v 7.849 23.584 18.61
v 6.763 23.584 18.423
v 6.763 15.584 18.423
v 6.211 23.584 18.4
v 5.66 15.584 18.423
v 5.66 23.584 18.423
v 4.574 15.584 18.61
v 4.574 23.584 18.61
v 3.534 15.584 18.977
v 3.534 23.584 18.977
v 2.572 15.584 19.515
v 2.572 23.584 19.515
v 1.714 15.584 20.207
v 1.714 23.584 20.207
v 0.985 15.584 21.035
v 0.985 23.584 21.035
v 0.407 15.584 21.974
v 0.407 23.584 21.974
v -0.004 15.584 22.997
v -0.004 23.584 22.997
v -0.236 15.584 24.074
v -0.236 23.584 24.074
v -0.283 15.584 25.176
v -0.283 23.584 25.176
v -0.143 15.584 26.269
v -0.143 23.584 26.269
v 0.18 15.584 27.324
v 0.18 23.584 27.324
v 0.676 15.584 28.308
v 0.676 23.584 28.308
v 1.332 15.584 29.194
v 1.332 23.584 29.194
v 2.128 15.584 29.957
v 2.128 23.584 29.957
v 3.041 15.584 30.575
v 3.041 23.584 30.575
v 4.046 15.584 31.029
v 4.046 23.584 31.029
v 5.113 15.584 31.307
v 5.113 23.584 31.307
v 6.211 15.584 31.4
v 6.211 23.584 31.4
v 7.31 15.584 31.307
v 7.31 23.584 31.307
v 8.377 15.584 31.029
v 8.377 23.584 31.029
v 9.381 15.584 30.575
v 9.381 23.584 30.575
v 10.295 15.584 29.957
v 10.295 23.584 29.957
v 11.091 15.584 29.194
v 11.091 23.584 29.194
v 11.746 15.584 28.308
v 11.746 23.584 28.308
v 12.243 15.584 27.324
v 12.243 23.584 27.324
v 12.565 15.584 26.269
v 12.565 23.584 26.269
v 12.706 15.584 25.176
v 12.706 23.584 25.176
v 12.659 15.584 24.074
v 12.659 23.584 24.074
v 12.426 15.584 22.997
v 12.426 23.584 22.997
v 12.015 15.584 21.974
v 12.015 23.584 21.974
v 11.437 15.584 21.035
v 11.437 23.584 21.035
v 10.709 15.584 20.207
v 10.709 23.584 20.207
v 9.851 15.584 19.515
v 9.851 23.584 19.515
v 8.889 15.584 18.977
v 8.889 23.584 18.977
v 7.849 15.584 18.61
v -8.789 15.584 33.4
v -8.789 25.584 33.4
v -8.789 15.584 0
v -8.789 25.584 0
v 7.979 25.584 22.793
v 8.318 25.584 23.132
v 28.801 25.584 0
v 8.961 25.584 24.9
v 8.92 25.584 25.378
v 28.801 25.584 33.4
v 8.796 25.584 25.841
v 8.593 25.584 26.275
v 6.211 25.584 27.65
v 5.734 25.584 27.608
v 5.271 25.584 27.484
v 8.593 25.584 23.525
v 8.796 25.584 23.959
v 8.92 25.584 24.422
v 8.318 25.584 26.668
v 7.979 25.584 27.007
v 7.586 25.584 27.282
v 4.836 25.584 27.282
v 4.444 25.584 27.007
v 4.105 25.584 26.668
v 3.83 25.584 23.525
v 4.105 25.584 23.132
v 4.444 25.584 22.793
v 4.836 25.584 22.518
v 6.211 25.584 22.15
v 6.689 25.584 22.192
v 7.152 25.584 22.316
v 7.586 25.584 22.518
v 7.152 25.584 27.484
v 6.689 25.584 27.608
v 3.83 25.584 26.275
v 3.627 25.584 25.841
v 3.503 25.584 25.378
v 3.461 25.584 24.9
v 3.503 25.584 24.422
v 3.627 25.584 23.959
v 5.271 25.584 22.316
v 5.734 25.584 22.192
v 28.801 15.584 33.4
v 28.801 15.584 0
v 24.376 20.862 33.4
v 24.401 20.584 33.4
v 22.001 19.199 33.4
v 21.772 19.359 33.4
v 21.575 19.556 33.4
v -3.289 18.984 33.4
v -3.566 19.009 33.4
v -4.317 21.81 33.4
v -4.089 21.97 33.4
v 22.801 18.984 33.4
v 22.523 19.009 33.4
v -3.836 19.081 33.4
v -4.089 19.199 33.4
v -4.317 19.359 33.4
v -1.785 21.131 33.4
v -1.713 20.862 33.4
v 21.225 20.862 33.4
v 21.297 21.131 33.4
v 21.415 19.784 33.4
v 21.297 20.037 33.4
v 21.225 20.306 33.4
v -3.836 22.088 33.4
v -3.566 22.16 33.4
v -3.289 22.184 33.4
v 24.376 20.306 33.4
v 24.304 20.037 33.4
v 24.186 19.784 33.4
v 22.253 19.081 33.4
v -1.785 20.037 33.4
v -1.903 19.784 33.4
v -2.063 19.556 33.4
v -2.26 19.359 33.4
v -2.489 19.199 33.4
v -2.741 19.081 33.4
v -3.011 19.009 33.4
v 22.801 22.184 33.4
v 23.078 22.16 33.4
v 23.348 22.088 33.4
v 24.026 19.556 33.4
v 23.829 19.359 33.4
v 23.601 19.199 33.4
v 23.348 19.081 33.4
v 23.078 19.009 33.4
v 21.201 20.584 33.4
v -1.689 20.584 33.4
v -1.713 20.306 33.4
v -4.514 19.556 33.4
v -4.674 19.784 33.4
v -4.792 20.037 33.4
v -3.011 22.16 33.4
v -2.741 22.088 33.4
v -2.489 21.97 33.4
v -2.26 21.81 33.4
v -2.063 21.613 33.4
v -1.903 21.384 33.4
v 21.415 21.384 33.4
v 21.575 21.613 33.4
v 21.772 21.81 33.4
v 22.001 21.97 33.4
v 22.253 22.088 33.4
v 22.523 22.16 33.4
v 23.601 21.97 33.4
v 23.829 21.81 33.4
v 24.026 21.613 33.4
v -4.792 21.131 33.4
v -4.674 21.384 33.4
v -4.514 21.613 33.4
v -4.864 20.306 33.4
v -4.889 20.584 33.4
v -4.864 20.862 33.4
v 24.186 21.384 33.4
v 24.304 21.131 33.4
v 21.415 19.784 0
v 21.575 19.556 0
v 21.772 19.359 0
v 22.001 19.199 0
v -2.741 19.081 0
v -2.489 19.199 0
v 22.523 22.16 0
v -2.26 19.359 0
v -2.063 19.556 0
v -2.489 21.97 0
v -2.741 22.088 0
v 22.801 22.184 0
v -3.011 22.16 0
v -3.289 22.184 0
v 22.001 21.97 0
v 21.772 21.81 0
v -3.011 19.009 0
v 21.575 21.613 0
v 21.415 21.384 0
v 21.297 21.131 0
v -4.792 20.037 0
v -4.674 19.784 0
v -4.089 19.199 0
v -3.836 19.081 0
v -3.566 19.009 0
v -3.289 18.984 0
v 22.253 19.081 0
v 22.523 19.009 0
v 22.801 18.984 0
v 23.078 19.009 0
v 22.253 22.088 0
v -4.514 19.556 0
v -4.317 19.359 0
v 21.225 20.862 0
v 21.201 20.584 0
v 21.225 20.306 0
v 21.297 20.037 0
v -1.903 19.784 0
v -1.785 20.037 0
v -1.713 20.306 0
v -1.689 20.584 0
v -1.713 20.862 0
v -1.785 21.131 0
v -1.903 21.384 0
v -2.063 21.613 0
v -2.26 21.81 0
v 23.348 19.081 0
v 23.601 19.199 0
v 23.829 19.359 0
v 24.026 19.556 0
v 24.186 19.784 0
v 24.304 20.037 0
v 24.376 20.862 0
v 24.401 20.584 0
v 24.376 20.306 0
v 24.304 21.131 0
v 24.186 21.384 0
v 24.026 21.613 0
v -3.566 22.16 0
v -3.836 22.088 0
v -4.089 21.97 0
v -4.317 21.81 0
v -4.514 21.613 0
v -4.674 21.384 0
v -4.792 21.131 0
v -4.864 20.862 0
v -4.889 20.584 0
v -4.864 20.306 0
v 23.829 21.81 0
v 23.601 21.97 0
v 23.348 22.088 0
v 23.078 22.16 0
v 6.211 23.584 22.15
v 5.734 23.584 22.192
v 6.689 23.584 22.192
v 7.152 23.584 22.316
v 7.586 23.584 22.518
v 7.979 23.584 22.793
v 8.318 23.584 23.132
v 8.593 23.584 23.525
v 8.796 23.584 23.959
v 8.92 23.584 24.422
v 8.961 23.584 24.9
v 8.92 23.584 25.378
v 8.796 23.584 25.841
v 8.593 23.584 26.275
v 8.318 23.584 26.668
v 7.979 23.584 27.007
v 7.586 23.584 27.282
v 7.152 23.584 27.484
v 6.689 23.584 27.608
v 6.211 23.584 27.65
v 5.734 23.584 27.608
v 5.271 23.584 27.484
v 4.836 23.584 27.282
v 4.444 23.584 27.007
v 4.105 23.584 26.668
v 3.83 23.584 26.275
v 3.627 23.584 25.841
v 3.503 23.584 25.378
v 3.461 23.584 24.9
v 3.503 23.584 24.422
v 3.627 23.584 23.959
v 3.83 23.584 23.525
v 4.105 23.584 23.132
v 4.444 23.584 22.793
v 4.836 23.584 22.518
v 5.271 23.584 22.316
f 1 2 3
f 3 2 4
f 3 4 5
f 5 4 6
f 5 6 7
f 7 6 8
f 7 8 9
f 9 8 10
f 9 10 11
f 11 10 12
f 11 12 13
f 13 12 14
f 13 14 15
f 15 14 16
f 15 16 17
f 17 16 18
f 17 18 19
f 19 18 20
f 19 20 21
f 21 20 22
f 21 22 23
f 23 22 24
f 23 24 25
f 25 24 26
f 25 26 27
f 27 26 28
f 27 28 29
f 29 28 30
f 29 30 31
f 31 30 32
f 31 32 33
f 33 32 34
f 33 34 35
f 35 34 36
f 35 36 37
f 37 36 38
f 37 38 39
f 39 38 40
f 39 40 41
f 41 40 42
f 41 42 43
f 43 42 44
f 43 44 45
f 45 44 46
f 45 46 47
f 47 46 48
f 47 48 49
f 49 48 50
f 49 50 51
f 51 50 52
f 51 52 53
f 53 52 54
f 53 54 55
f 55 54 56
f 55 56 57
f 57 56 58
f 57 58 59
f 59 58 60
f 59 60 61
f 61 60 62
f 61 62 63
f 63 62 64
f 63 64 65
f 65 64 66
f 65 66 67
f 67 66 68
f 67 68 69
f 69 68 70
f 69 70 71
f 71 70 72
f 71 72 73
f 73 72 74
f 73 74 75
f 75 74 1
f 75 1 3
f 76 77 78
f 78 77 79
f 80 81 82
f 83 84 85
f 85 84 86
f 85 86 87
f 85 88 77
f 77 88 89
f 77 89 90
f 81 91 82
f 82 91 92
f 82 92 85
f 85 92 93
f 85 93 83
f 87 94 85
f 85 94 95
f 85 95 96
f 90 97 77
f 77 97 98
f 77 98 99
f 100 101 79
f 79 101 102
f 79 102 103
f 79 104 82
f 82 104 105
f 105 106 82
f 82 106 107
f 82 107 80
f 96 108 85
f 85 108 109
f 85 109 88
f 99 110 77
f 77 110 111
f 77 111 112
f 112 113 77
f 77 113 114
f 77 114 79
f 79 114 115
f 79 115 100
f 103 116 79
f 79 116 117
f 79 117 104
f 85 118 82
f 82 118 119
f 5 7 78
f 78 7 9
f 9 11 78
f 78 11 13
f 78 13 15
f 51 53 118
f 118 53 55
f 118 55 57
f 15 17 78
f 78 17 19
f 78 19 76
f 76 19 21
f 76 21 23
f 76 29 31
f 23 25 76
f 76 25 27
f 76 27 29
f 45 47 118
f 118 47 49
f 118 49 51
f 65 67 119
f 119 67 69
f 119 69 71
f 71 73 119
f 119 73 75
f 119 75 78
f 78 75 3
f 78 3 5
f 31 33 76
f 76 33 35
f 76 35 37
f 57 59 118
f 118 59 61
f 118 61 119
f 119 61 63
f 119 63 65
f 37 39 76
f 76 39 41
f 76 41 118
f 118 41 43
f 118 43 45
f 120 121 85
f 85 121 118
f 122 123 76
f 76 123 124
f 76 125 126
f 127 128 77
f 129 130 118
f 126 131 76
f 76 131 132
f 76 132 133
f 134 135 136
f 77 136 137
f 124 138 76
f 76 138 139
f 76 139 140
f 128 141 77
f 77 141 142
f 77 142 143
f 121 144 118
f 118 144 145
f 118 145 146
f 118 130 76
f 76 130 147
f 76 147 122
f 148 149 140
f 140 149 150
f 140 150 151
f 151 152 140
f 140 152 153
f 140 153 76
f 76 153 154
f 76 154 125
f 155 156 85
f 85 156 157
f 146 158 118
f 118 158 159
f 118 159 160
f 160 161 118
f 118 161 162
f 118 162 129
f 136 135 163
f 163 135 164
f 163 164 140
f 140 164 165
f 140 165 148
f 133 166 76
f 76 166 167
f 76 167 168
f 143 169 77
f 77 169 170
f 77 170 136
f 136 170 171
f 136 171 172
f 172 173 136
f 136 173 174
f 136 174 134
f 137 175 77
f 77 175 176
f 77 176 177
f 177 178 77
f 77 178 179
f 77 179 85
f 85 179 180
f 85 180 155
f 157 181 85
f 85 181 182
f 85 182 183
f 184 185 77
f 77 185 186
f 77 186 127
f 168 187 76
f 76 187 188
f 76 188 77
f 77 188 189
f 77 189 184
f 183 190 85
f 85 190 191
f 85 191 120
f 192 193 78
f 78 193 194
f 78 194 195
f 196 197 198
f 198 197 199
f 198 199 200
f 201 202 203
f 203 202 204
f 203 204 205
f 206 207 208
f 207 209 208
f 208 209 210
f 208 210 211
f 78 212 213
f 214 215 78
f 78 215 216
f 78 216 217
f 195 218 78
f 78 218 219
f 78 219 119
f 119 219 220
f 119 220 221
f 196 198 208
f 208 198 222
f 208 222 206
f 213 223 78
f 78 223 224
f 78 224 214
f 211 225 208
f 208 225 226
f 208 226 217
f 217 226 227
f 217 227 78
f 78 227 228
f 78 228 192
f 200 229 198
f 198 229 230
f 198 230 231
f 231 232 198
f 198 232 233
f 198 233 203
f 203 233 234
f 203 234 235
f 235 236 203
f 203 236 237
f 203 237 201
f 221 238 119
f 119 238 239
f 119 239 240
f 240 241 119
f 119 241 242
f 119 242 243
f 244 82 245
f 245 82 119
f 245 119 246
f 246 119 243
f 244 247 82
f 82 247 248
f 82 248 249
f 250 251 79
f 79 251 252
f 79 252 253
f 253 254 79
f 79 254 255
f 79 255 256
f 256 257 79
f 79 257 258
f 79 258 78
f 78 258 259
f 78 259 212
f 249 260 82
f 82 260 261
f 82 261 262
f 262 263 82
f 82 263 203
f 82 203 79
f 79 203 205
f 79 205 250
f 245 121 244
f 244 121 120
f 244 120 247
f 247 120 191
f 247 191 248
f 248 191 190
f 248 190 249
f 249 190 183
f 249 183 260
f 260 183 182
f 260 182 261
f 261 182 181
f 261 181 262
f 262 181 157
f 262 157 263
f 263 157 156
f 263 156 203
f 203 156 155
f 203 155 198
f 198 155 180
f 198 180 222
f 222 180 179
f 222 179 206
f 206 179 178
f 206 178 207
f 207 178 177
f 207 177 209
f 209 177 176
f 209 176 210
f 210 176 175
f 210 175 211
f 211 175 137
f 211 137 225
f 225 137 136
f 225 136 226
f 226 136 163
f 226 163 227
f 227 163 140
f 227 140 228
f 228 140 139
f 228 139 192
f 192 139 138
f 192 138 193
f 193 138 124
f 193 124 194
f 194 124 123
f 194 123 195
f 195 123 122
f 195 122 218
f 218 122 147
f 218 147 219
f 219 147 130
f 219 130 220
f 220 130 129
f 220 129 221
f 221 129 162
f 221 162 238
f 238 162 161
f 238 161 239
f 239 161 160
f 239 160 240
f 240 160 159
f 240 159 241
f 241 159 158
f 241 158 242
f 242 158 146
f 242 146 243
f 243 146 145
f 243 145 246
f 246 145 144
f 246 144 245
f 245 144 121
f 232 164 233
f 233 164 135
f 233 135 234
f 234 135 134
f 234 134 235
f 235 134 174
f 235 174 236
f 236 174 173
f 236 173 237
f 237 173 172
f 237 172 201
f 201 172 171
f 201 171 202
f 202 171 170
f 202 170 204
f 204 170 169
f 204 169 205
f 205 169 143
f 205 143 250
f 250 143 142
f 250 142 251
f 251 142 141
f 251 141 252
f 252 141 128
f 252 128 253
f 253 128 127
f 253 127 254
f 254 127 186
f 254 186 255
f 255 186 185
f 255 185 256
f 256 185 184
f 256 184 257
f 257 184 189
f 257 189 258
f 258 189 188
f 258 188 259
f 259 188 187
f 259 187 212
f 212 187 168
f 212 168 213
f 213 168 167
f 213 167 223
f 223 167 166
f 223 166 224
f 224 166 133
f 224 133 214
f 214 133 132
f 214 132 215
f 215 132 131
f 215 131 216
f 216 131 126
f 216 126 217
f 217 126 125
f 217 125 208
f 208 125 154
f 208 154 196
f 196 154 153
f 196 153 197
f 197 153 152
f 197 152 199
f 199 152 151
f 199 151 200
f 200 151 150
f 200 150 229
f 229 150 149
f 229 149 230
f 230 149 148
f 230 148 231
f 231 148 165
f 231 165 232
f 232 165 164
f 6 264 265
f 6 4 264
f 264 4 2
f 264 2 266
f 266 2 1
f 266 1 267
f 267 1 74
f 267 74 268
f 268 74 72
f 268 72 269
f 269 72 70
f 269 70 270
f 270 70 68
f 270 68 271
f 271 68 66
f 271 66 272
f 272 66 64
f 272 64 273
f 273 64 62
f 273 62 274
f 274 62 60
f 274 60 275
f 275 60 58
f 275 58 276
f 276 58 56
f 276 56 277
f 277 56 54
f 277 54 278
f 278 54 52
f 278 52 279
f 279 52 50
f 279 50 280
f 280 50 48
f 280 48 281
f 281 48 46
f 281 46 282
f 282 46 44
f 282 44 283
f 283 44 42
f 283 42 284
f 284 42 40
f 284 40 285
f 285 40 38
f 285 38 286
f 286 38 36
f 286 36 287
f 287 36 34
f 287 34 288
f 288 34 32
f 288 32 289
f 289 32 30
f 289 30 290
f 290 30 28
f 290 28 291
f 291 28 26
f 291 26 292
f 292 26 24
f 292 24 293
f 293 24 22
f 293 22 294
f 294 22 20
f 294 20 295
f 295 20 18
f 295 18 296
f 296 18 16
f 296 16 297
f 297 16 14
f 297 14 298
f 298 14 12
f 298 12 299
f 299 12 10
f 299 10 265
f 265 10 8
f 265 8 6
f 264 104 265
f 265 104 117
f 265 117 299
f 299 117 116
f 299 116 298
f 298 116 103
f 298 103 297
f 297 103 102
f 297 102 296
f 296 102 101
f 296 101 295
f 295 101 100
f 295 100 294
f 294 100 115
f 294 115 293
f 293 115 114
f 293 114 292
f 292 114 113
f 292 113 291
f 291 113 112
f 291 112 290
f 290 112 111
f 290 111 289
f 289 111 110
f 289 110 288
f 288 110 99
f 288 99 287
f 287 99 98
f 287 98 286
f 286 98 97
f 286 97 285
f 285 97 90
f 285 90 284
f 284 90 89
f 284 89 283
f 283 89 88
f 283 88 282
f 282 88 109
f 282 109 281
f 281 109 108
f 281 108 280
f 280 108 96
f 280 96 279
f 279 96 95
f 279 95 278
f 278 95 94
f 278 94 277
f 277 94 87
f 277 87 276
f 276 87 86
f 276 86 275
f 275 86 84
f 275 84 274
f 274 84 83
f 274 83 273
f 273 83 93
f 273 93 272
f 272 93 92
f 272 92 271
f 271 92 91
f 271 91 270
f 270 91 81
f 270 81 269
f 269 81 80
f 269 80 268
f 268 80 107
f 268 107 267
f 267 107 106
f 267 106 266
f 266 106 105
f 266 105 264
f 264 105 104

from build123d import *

# Parameters (mm, degrees)
SKETCH1_W           = 37.589281877
SKETCH1_H           = 10
BOSS_EXTRUDE1_DEPTH = 33.4
SKETCH2_R           = 6.5
CUT_EXTRUDE1_DEPTH  = 10
SKETCH3_R           = 1.6
CUT_EXTRUDE2_DEPTH  = 50
SKETCH4_R           = 6.6
SKETCH4_R_2         = 2.75
BOSS_EXTRUDE2_DEPTH = 2


with BuildPart() as part:
    # Sketch1 → Boss-Extrude1 (new body)
    with BuildSketch(Plane.XY):
        with Locations((10.006008035, 10.584218221)):
            Rectangle(SKETCH1_W, SKETCH1_H)
    extrude(amount=BOSS_EXTRUDE1_DEPTH)

    # Sketch2 → Cut-Extrude1 (cut)
    with BuildSketch(Plane(origin=(0, 15.584218221, 0), x_dir=(1, 0, 0), z_dir=(0, 1, 0))):
        with Locations(Location((6.211367096, -24.9, 0), (0, 0, 270))):
            Circle(SKETCH2_R)
    extrude(amount=-CUT_EXTRUDE1_DEPTH, mode=Mode.SUBTRACT)

    # Sketch3 → Cut-Extrude2 (cut)
    with BuildSketch(Plane.XY.offset(33.4)):
        with Locations((-3.288632904, 10.584218221)):
            Circle(SKETCH3_R)
        with Locations((22.800648973, 10.584218221)):
            Circle(SKETCH3_R)
    extrude(amount=-CUT_EXTRUDE2_DEPTH, mode=Mode.SUBTRACT)

    # Sketch4 → Boss-Extrude2 (add)
    with BuildSketch(Plane.XZ.offset(-5.584218221)):
        with Locations((6.211367096, 24.9)):
            Circle(SKETCH4_R)
        with Locations(Location((6.211367096, 24.9, 0), (0, 0, 270))):
            Circle(SKETCH4_R_2, mode=Mode.SUBTRACT)
    extrude(amount=-BOSS_EXTRUDE2_DEPTH)


with BuildPart() as body_2:
    # Mirror1: mirrored copy
    add(part.part.mirror(Plane(origin=(-8.788632904, 15.584218221, 33.4), x_dir=(0, 0, 1), z_dir=(0, 1, 0))))


solid = body_2.part
